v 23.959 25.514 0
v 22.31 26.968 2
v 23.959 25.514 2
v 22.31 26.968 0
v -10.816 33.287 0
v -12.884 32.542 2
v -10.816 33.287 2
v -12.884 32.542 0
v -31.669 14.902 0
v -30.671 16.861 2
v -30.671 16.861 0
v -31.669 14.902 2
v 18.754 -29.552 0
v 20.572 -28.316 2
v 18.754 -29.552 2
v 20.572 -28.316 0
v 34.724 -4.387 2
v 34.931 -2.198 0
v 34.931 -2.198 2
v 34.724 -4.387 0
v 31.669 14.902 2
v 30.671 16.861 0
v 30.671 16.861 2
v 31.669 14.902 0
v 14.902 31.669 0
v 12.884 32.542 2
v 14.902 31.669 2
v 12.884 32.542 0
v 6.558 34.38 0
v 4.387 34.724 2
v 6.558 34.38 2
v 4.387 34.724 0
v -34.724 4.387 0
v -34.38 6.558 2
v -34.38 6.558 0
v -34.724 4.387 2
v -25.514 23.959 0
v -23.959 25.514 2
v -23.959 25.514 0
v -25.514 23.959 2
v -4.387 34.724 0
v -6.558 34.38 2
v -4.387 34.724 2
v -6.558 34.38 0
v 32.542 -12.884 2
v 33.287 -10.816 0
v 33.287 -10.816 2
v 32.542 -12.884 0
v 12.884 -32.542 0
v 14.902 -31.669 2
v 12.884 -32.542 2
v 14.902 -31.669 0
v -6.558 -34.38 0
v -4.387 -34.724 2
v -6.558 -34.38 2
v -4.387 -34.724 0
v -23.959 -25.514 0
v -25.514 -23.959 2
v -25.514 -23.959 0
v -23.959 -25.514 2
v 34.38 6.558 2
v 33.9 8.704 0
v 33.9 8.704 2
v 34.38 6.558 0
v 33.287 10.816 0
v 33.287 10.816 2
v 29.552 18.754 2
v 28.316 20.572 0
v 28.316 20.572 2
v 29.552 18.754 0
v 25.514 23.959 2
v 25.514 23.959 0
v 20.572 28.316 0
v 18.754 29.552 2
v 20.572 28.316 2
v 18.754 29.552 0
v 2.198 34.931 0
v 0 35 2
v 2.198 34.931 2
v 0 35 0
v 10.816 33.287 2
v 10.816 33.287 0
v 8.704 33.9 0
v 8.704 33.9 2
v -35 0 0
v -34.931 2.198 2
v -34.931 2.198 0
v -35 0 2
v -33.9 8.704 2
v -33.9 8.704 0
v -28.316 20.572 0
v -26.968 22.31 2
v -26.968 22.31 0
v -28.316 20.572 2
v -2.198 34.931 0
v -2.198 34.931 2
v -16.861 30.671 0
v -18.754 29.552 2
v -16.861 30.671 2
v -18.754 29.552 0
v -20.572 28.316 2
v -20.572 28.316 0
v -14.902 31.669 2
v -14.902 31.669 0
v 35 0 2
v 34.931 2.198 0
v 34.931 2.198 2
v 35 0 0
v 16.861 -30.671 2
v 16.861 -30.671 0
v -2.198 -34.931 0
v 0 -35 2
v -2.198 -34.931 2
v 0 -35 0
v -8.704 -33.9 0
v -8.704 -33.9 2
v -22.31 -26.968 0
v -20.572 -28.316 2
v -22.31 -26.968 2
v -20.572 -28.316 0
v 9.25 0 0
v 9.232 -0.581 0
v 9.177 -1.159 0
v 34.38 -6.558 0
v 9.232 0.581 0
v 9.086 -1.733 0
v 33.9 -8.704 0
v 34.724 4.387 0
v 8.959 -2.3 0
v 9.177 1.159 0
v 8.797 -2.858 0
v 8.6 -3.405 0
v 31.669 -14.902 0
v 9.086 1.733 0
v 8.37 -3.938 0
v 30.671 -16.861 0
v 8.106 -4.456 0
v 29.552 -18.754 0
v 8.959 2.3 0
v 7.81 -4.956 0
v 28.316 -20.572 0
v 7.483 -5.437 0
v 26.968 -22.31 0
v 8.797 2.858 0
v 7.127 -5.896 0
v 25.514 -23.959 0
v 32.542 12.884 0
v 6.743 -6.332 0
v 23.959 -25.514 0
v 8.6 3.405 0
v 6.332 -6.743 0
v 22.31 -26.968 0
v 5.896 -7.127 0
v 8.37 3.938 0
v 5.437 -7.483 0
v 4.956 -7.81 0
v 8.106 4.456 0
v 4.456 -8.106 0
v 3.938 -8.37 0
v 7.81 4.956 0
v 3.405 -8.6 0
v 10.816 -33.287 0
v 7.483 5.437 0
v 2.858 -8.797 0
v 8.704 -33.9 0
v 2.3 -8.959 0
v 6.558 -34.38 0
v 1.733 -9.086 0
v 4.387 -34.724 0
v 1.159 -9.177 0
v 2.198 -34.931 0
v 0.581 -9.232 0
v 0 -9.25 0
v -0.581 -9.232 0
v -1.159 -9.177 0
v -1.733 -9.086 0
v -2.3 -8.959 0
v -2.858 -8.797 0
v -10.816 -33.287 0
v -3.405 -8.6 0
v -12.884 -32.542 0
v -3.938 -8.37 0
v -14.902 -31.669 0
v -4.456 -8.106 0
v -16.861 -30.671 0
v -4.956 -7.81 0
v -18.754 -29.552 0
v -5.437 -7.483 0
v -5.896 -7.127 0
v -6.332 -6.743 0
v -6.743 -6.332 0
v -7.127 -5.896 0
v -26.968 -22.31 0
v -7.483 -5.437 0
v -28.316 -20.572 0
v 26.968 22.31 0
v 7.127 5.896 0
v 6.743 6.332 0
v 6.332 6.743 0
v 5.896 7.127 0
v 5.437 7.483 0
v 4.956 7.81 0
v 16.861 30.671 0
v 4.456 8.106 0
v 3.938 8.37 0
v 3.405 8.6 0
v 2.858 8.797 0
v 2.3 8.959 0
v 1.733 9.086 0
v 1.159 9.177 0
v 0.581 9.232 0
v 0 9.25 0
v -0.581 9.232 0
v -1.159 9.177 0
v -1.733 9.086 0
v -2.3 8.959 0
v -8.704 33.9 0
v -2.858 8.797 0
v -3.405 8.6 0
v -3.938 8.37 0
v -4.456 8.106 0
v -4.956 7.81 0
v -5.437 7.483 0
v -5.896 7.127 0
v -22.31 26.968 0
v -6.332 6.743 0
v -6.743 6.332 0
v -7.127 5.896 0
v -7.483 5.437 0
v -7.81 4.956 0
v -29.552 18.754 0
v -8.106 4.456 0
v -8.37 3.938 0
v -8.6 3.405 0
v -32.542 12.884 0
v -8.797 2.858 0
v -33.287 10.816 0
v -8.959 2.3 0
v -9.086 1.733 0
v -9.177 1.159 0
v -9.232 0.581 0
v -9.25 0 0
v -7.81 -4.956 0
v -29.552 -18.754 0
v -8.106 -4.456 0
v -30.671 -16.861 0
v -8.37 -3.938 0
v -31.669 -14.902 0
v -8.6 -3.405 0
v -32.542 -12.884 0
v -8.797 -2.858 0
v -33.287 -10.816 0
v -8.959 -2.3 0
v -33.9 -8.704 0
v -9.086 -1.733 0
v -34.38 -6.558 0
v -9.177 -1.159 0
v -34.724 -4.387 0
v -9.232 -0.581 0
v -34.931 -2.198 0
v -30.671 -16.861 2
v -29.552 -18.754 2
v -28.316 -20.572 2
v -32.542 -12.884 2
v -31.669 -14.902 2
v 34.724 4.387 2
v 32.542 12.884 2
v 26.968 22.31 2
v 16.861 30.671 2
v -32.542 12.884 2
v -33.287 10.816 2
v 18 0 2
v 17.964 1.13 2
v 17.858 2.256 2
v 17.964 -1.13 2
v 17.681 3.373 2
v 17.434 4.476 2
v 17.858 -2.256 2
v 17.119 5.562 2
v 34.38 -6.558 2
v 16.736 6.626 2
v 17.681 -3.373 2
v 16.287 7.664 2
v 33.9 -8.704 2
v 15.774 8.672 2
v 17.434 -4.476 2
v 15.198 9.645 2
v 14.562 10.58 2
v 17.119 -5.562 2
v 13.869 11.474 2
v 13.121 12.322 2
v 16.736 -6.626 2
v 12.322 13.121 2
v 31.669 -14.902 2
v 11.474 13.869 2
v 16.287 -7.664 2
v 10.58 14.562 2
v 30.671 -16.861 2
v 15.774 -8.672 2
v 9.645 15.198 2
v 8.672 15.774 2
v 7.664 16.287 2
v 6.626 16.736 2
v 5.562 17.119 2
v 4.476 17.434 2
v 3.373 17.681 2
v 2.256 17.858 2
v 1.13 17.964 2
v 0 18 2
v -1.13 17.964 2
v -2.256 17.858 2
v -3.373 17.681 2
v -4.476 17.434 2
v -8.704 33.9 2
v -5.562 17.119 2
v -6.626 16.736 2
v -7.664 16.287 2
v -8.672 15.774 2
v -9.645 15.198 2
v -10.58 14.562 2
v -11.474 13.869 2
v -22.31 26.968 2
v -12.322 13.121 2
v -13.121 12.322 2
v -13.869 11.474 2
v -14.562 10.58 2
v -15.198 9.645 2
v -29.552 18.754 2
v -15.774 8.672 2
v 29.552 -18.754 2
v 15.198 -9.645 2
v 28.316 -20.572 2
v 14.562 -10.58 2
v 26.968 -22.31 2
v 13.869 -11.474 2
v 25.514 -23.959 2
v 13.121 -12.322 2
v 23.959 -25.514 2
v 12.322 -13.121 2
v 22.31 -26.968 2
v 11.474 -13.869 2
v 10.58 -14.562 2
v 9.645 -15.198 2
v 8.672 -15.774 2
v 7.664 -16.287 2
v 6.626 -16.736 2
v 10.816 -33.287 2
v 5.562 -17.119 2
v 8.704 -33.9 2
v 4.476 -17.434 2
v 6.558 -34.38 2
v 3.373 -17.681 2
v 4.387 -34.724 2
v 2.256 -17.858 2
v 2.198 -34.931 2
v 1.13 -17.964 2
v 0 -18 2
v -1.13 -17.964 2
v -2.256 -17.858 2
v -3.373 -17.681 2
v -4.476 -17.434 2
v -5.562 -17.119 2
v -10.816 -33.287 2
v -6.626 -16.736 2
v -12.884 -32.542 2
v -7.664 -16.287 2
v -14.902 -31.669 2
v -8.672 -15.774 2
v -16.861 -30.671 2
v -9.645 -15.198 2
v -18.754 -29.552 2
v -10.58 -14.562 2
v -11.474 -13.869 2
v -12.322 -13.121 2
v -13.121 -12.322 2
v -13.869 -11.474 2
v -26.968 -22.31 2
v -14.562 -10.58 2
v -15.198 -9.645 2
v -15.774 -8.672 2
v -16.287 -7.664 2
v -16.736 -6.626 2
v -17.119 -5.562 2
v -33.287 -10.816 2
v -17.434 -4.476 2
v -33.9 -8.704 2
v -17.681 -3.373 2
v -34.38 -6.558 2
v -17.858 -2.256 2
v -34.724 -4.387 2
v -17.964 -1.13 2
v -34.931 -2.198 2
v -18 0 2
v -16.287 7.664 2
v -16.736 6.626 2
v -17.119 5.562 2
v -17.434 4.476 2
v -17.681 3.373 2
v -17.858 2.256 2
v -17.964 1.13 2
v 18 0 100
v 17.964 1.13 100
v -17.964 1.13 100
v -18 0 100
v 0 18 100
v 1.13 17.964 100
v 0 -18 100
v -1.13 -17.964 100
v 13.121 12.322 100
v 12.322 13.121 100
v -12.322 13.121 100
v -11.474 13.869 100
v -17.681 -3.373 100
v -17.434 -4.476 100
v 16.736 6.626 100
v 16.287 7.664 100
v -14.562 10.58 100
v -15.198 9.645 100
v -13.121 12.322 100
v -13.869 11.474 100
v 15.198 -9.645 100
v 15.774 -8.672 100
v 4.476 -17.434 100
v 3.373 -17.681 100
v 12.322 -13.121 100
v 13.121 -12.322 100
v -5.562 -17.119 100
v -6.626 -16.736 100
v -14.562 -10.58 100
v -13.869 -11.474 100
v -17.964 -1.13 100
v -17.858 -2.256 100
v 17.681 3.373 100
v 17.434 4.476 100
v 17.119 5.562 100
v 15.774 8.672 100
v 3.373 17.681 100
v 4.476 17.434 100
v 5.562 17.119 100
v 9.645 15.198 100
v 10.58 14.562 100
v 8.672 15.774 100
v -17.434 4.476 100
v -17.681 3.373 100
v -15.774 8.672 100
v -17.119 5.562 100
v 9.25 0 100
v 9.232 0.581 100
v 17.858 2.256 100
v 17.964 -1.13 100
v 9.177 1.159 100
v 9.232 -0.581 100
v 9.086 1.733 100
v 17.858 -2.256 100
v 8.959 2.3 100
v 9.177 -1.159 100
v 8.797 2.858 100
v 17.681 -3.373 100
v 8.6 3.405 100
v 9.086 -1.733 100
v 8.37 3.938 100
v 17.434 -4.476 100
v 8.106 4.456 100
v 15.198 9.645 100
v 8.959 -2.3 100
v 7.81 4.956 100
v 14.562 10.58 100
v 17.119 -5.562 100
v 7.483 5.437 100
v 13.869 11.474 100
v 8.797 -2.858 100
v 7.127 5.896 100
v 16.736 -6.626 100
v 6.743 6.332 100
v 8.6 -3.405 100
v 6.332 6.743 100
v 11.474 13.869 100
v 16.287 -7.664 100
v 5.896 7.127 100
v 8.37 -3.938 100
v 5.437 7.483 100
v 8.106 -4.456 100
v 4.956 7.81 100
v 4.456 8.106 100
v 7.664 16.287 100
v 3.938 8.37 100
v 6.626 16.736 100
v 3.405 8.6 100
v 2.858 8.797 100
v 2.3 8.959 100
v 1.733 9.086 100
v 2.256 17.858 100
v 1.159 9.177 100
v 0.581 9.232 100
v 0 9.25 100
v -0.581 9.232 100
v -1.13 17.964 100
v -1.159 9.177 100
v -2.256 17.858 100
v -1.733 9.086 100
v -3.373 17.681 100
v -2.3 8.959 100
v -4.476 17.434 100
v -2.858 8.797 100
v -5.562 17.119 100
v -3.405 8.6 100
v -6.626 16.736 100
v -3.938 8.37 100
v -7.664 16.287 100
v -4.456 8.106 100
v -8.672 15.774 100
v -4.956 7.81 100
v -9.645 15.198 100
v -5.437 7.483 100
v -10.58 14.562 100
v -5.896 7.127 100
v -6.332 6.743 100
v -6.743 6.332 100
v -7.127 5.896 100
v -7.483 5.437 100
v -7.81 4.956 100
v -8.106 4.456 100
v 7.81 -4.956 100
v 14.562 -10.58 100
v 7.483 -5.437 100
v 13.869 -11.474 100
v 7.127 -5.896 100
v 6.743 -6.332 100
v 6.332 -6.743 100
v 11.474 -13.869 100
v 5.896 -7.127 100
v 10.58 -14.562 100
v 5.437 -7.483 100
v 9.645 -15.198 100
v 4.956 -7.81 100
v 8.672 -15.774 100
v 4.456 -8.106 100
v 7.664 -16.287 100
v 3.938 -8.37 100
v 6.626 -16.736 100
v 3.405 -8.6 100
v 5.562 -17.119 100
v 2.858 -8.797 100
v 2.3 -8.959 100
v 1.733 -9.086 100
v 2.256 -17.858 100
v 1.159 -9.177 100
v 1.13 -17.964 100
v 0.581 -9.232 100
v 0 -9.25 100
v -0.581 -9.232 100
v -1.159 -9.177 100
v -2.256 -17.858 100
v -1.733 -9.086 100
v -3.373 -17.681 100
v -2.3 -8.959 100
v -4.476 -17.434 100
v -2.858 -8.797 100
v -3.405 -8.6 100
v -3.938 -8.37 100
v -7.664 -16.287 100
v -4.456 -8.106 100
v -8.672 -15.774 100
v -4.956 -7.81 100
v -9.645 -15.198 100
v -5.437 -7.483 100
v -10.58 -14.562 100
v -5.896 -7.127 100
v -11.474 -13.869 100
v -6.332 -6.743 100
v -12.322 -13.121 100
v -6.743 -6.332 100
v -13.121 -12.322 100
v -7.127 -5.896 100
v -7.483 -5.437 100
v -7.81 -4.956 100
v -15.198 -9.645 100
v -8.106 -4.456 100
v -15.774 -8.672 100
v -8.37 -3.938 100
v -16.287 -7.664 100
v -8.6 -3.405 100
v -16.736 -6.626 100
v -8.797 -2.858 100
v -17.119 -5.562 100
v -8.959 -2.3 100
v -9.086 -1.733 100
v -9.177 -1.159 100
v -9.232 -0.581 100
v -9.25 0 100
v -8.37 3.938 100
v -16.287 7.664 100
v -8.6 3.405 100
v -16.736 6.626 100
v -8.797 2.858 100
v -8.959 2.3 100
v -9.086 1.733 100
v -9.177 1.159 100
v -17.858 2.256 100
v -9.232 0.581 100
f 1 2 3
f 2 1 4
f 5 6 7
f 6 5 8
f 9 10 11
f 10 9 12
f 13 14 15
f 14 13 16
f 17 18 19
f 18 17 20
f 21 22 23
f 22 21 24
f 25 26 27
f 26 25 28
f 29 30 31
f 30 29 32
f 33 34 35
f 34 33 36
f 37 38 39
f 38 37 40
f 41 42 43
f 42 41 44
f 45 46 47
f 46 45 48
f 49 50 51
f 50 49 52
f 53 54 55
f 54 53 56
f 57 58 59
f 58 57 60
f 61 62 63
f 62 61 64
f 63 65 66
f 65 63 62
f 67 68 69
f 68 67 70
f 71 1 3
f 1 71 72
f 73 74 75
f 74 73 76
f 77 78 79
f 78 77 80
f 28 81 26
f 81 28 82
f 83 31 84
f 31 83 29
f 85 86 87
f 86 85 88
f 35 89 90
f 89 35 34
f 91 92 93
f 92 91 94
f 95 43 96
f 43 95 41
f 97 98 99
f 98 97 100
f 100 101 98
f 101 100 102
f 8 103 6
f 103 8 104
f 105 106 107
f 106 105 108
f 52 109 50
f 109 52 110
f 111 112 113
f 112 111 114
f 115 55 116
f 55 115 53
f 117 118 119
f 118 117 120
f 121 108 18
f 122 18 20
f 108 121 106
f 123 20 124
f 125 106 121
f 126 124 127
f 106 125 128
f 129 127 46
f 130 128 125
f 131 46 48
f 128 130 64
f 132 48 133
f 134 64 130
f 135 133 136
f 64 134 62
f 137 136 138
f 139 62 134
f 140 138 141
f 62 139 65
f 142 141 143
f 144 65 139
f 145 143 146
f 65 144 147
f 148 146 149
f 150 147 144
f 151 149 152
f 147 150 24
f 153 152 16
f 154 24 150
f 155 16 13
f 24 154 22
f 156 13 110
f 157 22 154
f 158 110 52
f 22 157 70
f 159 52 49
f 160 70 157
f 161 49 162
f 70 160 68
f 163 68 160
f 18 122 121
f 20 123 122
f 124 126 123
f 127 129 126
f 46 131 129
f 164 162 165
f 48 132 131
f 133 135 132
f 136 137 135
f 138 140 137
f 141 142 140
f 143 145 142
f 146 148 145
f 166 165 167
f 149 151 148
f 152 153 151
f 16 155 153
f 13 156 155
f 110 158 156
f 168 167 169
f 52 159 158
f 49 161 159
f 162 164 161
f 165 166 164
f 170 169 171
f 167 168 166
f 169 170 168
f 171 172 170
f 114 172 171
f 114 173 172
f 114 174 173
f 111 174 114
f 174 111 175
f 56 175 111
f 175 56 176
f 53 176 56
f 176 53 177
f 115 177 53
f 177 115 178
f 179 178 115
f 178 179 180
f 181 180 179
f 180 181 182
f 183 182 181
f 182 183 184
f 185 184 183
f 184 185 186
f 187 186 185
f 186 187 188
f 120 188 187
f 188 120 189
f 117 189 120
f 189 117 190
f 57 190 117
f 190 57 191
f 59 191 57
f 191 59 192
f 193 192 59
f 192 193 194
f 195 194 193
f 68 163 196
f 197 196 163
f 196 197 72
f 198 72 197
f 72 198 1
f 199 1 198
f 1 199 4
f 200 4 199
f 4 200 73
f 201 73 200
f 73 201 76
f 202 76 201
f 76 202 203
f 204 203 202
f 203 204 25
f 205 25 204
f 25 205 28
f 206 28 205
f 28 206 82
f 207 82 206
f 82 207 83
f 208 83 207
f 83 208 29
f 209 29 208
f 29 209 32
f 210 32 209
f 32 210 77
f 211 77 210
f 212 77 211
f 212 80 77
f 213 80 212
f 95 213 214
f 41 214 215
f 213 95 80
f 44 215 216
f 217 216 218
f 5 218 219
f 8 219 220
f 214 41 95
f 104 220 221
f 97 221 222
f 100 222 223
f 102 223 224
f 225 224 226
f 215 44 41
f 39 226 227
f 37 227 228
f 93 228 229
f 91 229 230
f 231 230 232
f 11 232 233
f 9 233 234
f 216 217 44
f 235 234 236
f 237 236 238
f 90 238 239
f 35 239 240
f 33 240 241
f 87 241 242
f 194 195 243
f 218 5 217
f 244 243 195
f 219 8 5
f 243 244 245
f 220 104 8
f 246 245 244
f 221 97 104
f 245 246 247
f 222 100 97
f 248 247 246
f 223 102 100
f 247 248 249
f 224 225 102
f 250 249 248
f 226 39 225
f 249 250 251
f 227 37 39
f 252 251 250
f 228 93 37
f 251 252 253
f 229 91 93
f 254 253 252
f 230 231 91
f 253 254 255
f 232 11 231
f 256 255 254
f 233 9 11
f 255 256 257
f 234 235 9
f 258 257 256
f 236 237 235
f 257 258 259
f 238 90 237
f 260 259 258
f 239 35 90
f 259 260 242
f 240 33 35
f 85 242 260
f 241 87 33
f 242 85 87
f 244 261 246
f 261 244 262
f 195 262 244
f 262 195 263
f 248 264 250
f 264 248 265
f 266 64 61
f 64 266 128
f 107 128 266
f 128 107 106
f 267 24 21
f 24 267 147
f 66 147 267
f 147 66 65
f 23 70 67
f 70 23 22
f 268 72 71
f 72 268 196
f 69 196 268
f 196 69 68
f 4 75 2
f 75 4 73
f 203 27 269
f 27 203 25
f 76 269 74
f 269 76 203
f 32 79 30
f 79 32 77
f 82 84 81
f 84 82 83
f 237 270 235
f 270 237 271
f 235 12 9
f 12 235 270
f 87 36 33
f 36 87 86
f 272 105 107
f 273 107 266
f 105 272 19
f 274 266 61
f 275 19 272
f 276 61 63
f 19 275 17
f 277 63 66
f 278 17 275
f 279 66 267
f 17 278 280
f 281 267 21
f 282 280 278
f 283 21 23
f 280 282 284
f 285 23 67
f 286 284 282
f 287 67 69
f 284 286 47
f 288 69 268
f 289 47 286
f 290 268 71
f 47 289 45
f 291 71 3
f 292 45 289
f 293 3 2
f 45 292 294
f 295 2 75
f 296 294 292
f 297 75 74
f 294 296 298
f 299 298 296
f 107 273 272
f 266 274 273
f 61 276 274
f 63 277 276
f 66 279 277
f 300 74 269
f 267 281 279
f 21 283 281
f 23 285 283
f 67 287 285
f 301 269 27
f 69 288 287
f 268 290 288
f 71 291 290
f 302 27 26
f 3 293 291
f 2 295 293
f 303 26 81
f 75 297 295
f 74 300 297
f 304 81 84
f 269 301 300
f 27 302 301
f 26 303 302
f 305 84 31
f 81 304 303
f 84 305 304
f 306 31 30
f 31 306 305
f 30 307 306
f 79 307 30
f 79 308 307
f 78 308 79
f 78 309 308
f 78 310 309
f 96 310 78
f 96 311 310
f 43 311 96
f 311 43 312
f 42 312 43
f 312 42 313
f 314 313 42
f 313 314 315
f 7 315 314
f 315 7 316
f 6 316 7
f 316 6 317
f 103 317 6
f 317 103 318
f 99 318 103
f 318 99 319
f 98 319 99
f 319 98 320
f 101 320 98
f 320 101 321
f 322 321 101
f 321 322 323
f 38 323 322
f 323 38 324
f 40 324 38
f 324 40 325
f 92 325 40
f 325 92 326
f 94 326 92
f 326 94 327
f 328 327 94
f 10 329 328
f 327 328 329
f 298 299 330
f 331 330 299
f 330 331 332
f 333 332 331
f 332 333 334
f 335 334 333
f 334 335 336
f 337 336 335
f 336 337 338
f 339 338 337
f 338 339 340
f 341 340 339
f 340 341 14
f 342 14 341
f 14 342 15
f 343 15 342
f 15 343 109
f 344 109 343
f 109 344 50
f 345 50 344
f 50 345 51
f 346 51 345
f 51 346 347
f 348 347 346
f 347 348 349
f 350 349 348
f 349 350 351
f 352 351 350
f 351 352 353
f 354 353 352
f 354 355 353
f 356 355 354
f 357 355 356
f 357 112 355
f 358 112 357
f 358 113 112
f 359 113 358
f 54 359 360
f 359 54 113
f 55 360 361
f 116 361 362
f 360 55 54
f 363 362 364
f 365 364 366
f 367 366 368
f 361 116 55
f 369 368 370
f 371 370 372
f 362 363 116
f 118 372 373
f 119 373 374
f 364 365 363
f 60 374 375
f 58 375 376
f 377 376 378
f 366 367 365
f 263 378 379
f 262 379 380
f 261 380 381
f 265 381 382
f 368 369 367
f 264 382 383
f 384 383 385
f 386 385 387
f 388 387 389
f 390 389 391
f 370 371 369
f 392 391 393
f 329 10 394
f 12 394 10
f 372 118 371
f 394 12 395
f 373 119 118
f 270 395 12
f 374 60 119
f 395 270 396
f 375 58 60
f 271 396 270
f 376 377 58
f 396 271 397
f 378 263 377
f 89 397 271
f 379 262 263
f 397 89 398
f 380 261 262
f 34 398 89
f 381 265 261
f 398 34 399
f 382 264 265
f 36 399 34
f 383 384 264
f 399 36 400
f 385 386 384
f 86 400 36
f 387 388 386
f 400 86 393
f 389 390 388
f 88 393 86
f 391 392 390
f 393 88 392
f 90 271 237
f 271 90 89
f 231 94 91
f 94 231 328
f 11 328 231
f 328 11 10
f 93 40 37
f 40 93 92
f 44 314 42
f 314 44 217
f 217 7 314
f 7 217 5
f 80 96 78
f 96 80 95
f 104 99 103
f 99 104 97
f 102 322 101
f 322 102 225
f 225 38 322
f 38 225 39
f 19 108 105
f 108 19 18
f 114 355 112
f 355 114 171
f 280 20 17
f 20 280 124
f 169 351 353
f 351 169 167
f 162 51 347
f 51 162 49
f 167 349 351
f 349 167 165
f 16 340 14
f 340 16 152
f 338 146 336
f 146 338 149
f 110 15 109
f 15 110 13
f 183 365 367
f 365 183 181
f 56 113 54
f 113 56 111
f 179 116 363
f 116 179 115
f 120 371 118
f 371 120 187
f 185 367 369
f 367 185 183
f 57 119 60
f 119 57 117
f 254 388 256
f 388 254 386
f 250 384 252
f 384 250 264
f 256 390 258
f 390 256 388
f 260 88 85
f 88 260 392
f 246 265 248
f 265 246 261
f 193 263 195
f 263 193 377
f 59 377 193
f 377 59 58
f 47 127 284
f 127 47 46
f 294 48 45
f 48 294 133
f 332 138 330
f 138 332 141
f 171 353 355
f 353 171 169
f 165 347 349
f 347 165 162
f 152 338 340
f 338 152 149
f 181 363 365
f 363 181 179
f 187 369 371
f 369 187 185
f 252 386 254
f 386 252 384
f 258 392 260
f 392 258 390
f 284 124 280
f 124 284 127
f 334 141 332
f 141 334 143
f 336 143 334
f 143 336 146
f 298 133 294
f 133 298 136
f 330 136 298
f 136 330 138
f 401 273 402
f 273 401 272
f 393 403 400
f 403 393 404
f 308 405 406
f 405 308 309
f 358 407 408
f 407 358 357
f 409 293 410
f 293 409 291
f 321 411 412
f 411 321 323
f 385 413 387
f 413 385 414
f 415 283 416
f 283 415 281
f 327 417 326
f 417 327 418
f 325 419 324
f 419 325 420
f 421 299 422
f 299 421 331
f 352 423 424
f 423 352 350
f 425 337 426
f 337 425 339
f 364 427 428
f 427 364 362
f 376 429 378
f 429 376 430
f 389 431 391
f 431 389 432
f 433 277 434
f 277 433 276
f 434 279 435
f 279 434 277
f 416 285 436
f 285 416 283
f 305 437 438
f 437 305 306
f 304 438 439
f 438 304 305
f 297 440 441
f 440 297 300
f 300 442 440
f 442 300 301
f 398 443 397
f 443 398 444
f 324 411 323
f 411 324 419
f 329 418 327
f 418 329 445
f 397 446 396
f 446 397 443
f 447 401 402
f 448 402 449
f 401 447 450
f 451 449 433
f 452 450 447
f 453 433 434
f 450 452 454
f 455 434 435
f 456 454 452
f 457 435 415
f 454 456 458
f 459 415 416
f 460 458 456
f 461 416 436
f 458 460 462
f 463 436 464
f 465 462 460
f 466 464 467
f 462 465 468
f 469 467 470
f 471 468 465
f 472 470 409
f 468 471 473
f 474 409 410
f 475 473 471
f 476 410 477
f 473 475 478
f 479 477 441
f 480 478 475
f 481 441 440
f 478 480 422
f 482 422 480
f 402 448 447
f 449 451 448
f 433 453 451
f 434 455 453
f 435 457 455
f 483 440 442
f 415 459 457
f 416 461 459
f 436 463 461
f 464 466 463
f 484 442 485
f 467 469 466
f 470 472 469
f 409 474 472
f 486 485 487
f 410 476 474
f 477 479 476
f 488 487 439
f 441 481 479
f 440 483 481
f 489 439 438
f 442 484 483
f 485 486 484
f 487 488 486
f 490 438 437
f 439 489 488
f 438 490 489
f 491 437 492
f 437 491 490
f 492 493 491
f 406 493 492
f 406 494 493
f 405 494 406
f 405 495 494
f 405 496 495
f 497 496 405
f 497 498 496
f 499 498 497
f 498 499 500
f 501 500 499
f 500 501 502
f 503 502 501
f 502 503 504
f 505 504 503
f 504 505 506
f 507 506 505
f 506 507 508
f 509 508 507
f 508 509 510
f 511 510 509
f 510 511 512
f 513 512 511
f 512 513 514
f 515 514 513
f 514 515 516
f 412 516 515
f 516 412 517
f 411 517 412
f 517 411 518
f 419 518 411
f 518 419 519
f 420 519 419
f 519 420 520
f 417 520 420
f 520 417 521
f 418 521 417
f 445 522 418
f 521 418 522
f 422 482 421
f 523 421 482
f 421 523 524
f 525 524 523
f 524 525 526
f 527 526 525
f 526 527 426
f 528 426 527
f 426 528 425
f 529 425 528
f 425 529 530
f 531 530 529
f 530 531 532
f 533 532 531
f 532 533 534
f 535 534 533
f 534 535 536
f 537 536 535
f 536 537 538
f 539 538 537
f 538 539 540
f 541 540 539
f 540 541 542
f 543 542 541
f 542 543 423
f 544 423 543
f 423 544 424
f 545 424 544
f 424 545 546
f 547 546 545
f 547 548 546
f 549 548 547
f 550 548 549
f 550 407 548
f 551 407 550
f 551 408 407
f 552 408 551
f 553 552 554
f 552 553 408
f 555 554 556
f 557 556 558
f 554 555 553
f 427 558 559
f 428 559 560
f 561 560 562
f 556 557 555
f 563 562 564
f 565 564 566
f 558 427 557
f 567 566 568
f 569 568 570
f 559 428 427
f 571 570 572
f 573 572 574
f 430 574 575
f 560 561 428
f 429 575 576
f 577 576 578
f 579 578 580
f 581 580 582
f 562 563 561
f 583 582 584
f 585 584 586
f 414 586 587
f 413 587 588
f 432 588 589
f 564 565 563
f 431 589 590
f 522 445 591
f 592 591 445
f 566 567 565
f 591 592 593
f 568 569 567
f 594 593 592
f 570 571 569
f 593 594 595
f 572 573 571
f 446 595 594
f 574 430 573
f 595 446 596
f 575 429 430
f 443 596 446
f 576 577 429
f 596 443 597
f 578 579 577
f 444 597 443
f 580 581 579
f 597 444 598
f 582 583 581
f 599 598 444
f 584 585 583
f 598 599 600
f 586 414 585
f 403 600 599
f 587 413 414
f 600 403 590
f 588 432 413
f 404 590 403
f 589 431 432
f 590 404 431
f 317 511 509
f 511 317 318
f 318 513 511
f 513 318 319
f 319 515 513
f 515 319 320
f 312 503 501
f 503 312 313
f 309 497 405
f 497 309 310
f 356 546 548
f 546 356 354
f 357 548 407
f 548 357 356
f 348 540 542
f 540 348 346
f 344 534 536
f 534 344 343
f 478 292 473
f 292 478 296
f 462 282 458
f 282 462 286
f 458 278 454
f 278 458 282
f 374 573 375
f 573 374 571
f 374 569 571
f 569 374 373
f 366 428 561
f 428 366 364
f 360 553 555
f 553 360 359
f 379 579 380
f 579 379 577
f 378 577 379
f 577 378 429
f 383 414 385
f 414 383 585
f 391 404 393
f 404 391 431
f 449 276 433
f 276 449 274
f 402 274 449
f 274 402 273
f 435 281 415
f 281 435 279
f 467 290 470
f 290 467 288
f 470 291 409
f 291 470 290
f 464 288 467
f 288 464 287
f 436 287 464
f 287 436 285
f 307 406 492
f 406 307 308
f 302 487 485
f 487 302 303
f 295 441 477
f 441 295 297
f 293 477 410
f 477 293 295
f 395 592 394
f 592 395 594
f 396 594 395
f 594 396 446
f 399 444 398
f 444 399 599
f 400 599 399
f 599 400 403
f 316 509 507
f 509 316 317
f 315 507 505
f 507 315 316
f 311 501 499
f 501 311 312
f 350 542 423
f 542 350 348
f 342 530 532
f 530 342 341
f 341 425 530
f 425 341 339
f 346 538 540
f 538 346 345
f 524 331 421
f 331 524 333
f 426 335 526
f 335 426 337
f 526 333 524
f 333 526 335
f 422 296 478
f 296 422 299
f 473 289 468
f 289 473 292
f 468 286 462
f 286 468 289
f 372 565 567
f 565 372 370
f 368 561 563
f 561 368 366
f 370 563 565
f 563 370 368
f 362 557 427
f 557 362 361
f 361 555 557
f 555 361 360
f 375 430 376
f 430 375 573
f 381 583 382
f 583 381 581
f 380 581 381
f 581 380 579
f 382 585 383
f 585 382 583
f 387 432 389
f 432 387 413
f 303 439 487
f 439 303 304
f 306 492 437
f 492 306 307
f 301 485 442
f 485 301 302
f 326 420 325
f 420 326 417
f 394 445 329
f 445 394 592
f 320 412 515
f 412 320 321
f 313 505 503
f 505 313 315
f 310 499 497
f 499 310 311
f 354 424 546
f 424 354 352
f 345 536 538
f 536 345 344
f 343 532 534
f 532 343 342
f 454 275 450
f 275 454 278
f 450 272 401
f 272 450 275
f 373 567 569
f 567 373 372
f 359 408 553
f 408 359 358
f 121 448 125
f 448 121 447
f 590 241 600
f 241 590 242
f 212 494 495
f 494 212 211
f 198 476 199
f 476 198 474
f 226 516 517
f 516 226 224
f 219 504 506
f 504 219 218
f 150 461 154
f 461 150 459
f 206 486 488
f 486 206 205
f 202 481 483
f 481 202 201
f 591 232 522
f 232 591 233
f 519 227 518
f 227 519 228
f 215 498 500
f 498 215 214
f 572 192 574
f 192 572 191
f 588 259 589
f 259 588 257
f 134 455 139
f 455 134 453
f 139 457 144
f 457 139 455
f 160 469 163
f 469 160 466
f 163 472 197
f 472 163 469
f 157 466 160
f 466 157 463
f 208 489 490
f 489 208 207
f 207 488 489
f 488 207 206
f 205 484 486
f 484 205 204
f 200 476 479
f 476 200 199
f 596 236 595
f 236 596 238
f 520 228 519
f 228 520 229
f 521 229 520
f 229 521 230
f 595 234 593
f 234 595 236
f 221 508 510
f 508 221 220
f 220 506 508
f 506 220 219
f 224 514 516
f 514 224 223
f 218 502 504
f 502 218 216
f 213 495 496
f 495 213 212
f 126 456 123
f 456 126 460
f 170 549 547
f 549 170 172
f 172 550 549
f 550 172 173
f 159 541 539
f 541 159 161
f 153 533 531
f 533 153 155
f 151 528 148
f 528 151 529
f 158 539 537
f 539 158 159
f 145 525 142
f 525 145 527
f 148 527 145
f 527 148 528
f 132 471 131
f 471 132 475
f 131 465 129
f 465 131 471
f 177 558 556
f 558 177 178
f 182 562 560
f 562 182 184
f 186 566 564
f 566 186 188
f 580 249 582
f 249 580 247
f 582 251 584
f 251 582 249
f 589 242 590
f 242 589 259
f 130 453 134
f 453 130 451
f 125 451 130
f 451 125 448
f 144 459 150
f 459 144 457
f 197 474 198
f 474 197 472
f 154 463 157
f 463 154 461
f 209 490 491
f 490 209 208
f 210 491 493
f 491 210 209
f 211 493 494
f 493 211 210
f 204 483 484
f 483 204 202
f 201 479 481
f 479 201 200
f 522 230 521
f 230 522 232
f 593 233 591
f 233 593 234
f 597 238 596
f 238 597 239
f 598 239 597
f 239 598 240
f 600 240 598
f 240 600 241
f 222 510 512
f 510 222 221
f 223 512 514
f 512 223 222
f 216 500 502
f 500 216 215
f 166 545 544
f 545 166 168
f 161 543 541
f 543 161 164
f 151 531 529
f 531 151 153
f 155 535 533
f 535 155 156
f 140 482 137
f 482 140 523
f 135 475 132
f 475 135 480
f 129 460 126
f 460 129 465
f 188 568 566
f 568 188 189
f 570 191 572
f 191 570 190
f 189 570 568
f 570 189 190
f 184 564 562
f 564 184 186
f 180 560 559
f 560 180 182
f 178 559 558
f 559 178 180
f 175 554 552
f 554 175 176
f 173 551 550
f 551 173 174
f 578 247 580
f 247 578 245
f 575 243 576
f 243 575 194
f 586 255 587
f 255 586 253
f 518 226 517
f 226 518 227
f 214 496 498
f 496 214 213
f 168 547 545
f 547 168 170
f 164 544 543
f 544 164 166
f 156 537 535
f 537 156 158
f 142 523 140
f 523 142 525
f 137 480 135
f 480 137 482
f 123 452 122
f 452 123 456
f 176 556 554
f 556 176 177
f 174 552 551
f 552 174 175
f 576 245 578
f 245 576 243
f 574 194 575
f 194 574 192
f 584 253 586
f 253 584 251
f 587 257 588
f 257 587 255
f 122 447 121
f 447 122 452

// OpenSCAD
$fn=100;


difference(){
    solidcyl();
    translate([0,0,-1])
    cylinder(102,9.25,9.25);
}


module solidcyl(){
        cylinder(2,35,35);
    cylinder(100,18,18);
    }
